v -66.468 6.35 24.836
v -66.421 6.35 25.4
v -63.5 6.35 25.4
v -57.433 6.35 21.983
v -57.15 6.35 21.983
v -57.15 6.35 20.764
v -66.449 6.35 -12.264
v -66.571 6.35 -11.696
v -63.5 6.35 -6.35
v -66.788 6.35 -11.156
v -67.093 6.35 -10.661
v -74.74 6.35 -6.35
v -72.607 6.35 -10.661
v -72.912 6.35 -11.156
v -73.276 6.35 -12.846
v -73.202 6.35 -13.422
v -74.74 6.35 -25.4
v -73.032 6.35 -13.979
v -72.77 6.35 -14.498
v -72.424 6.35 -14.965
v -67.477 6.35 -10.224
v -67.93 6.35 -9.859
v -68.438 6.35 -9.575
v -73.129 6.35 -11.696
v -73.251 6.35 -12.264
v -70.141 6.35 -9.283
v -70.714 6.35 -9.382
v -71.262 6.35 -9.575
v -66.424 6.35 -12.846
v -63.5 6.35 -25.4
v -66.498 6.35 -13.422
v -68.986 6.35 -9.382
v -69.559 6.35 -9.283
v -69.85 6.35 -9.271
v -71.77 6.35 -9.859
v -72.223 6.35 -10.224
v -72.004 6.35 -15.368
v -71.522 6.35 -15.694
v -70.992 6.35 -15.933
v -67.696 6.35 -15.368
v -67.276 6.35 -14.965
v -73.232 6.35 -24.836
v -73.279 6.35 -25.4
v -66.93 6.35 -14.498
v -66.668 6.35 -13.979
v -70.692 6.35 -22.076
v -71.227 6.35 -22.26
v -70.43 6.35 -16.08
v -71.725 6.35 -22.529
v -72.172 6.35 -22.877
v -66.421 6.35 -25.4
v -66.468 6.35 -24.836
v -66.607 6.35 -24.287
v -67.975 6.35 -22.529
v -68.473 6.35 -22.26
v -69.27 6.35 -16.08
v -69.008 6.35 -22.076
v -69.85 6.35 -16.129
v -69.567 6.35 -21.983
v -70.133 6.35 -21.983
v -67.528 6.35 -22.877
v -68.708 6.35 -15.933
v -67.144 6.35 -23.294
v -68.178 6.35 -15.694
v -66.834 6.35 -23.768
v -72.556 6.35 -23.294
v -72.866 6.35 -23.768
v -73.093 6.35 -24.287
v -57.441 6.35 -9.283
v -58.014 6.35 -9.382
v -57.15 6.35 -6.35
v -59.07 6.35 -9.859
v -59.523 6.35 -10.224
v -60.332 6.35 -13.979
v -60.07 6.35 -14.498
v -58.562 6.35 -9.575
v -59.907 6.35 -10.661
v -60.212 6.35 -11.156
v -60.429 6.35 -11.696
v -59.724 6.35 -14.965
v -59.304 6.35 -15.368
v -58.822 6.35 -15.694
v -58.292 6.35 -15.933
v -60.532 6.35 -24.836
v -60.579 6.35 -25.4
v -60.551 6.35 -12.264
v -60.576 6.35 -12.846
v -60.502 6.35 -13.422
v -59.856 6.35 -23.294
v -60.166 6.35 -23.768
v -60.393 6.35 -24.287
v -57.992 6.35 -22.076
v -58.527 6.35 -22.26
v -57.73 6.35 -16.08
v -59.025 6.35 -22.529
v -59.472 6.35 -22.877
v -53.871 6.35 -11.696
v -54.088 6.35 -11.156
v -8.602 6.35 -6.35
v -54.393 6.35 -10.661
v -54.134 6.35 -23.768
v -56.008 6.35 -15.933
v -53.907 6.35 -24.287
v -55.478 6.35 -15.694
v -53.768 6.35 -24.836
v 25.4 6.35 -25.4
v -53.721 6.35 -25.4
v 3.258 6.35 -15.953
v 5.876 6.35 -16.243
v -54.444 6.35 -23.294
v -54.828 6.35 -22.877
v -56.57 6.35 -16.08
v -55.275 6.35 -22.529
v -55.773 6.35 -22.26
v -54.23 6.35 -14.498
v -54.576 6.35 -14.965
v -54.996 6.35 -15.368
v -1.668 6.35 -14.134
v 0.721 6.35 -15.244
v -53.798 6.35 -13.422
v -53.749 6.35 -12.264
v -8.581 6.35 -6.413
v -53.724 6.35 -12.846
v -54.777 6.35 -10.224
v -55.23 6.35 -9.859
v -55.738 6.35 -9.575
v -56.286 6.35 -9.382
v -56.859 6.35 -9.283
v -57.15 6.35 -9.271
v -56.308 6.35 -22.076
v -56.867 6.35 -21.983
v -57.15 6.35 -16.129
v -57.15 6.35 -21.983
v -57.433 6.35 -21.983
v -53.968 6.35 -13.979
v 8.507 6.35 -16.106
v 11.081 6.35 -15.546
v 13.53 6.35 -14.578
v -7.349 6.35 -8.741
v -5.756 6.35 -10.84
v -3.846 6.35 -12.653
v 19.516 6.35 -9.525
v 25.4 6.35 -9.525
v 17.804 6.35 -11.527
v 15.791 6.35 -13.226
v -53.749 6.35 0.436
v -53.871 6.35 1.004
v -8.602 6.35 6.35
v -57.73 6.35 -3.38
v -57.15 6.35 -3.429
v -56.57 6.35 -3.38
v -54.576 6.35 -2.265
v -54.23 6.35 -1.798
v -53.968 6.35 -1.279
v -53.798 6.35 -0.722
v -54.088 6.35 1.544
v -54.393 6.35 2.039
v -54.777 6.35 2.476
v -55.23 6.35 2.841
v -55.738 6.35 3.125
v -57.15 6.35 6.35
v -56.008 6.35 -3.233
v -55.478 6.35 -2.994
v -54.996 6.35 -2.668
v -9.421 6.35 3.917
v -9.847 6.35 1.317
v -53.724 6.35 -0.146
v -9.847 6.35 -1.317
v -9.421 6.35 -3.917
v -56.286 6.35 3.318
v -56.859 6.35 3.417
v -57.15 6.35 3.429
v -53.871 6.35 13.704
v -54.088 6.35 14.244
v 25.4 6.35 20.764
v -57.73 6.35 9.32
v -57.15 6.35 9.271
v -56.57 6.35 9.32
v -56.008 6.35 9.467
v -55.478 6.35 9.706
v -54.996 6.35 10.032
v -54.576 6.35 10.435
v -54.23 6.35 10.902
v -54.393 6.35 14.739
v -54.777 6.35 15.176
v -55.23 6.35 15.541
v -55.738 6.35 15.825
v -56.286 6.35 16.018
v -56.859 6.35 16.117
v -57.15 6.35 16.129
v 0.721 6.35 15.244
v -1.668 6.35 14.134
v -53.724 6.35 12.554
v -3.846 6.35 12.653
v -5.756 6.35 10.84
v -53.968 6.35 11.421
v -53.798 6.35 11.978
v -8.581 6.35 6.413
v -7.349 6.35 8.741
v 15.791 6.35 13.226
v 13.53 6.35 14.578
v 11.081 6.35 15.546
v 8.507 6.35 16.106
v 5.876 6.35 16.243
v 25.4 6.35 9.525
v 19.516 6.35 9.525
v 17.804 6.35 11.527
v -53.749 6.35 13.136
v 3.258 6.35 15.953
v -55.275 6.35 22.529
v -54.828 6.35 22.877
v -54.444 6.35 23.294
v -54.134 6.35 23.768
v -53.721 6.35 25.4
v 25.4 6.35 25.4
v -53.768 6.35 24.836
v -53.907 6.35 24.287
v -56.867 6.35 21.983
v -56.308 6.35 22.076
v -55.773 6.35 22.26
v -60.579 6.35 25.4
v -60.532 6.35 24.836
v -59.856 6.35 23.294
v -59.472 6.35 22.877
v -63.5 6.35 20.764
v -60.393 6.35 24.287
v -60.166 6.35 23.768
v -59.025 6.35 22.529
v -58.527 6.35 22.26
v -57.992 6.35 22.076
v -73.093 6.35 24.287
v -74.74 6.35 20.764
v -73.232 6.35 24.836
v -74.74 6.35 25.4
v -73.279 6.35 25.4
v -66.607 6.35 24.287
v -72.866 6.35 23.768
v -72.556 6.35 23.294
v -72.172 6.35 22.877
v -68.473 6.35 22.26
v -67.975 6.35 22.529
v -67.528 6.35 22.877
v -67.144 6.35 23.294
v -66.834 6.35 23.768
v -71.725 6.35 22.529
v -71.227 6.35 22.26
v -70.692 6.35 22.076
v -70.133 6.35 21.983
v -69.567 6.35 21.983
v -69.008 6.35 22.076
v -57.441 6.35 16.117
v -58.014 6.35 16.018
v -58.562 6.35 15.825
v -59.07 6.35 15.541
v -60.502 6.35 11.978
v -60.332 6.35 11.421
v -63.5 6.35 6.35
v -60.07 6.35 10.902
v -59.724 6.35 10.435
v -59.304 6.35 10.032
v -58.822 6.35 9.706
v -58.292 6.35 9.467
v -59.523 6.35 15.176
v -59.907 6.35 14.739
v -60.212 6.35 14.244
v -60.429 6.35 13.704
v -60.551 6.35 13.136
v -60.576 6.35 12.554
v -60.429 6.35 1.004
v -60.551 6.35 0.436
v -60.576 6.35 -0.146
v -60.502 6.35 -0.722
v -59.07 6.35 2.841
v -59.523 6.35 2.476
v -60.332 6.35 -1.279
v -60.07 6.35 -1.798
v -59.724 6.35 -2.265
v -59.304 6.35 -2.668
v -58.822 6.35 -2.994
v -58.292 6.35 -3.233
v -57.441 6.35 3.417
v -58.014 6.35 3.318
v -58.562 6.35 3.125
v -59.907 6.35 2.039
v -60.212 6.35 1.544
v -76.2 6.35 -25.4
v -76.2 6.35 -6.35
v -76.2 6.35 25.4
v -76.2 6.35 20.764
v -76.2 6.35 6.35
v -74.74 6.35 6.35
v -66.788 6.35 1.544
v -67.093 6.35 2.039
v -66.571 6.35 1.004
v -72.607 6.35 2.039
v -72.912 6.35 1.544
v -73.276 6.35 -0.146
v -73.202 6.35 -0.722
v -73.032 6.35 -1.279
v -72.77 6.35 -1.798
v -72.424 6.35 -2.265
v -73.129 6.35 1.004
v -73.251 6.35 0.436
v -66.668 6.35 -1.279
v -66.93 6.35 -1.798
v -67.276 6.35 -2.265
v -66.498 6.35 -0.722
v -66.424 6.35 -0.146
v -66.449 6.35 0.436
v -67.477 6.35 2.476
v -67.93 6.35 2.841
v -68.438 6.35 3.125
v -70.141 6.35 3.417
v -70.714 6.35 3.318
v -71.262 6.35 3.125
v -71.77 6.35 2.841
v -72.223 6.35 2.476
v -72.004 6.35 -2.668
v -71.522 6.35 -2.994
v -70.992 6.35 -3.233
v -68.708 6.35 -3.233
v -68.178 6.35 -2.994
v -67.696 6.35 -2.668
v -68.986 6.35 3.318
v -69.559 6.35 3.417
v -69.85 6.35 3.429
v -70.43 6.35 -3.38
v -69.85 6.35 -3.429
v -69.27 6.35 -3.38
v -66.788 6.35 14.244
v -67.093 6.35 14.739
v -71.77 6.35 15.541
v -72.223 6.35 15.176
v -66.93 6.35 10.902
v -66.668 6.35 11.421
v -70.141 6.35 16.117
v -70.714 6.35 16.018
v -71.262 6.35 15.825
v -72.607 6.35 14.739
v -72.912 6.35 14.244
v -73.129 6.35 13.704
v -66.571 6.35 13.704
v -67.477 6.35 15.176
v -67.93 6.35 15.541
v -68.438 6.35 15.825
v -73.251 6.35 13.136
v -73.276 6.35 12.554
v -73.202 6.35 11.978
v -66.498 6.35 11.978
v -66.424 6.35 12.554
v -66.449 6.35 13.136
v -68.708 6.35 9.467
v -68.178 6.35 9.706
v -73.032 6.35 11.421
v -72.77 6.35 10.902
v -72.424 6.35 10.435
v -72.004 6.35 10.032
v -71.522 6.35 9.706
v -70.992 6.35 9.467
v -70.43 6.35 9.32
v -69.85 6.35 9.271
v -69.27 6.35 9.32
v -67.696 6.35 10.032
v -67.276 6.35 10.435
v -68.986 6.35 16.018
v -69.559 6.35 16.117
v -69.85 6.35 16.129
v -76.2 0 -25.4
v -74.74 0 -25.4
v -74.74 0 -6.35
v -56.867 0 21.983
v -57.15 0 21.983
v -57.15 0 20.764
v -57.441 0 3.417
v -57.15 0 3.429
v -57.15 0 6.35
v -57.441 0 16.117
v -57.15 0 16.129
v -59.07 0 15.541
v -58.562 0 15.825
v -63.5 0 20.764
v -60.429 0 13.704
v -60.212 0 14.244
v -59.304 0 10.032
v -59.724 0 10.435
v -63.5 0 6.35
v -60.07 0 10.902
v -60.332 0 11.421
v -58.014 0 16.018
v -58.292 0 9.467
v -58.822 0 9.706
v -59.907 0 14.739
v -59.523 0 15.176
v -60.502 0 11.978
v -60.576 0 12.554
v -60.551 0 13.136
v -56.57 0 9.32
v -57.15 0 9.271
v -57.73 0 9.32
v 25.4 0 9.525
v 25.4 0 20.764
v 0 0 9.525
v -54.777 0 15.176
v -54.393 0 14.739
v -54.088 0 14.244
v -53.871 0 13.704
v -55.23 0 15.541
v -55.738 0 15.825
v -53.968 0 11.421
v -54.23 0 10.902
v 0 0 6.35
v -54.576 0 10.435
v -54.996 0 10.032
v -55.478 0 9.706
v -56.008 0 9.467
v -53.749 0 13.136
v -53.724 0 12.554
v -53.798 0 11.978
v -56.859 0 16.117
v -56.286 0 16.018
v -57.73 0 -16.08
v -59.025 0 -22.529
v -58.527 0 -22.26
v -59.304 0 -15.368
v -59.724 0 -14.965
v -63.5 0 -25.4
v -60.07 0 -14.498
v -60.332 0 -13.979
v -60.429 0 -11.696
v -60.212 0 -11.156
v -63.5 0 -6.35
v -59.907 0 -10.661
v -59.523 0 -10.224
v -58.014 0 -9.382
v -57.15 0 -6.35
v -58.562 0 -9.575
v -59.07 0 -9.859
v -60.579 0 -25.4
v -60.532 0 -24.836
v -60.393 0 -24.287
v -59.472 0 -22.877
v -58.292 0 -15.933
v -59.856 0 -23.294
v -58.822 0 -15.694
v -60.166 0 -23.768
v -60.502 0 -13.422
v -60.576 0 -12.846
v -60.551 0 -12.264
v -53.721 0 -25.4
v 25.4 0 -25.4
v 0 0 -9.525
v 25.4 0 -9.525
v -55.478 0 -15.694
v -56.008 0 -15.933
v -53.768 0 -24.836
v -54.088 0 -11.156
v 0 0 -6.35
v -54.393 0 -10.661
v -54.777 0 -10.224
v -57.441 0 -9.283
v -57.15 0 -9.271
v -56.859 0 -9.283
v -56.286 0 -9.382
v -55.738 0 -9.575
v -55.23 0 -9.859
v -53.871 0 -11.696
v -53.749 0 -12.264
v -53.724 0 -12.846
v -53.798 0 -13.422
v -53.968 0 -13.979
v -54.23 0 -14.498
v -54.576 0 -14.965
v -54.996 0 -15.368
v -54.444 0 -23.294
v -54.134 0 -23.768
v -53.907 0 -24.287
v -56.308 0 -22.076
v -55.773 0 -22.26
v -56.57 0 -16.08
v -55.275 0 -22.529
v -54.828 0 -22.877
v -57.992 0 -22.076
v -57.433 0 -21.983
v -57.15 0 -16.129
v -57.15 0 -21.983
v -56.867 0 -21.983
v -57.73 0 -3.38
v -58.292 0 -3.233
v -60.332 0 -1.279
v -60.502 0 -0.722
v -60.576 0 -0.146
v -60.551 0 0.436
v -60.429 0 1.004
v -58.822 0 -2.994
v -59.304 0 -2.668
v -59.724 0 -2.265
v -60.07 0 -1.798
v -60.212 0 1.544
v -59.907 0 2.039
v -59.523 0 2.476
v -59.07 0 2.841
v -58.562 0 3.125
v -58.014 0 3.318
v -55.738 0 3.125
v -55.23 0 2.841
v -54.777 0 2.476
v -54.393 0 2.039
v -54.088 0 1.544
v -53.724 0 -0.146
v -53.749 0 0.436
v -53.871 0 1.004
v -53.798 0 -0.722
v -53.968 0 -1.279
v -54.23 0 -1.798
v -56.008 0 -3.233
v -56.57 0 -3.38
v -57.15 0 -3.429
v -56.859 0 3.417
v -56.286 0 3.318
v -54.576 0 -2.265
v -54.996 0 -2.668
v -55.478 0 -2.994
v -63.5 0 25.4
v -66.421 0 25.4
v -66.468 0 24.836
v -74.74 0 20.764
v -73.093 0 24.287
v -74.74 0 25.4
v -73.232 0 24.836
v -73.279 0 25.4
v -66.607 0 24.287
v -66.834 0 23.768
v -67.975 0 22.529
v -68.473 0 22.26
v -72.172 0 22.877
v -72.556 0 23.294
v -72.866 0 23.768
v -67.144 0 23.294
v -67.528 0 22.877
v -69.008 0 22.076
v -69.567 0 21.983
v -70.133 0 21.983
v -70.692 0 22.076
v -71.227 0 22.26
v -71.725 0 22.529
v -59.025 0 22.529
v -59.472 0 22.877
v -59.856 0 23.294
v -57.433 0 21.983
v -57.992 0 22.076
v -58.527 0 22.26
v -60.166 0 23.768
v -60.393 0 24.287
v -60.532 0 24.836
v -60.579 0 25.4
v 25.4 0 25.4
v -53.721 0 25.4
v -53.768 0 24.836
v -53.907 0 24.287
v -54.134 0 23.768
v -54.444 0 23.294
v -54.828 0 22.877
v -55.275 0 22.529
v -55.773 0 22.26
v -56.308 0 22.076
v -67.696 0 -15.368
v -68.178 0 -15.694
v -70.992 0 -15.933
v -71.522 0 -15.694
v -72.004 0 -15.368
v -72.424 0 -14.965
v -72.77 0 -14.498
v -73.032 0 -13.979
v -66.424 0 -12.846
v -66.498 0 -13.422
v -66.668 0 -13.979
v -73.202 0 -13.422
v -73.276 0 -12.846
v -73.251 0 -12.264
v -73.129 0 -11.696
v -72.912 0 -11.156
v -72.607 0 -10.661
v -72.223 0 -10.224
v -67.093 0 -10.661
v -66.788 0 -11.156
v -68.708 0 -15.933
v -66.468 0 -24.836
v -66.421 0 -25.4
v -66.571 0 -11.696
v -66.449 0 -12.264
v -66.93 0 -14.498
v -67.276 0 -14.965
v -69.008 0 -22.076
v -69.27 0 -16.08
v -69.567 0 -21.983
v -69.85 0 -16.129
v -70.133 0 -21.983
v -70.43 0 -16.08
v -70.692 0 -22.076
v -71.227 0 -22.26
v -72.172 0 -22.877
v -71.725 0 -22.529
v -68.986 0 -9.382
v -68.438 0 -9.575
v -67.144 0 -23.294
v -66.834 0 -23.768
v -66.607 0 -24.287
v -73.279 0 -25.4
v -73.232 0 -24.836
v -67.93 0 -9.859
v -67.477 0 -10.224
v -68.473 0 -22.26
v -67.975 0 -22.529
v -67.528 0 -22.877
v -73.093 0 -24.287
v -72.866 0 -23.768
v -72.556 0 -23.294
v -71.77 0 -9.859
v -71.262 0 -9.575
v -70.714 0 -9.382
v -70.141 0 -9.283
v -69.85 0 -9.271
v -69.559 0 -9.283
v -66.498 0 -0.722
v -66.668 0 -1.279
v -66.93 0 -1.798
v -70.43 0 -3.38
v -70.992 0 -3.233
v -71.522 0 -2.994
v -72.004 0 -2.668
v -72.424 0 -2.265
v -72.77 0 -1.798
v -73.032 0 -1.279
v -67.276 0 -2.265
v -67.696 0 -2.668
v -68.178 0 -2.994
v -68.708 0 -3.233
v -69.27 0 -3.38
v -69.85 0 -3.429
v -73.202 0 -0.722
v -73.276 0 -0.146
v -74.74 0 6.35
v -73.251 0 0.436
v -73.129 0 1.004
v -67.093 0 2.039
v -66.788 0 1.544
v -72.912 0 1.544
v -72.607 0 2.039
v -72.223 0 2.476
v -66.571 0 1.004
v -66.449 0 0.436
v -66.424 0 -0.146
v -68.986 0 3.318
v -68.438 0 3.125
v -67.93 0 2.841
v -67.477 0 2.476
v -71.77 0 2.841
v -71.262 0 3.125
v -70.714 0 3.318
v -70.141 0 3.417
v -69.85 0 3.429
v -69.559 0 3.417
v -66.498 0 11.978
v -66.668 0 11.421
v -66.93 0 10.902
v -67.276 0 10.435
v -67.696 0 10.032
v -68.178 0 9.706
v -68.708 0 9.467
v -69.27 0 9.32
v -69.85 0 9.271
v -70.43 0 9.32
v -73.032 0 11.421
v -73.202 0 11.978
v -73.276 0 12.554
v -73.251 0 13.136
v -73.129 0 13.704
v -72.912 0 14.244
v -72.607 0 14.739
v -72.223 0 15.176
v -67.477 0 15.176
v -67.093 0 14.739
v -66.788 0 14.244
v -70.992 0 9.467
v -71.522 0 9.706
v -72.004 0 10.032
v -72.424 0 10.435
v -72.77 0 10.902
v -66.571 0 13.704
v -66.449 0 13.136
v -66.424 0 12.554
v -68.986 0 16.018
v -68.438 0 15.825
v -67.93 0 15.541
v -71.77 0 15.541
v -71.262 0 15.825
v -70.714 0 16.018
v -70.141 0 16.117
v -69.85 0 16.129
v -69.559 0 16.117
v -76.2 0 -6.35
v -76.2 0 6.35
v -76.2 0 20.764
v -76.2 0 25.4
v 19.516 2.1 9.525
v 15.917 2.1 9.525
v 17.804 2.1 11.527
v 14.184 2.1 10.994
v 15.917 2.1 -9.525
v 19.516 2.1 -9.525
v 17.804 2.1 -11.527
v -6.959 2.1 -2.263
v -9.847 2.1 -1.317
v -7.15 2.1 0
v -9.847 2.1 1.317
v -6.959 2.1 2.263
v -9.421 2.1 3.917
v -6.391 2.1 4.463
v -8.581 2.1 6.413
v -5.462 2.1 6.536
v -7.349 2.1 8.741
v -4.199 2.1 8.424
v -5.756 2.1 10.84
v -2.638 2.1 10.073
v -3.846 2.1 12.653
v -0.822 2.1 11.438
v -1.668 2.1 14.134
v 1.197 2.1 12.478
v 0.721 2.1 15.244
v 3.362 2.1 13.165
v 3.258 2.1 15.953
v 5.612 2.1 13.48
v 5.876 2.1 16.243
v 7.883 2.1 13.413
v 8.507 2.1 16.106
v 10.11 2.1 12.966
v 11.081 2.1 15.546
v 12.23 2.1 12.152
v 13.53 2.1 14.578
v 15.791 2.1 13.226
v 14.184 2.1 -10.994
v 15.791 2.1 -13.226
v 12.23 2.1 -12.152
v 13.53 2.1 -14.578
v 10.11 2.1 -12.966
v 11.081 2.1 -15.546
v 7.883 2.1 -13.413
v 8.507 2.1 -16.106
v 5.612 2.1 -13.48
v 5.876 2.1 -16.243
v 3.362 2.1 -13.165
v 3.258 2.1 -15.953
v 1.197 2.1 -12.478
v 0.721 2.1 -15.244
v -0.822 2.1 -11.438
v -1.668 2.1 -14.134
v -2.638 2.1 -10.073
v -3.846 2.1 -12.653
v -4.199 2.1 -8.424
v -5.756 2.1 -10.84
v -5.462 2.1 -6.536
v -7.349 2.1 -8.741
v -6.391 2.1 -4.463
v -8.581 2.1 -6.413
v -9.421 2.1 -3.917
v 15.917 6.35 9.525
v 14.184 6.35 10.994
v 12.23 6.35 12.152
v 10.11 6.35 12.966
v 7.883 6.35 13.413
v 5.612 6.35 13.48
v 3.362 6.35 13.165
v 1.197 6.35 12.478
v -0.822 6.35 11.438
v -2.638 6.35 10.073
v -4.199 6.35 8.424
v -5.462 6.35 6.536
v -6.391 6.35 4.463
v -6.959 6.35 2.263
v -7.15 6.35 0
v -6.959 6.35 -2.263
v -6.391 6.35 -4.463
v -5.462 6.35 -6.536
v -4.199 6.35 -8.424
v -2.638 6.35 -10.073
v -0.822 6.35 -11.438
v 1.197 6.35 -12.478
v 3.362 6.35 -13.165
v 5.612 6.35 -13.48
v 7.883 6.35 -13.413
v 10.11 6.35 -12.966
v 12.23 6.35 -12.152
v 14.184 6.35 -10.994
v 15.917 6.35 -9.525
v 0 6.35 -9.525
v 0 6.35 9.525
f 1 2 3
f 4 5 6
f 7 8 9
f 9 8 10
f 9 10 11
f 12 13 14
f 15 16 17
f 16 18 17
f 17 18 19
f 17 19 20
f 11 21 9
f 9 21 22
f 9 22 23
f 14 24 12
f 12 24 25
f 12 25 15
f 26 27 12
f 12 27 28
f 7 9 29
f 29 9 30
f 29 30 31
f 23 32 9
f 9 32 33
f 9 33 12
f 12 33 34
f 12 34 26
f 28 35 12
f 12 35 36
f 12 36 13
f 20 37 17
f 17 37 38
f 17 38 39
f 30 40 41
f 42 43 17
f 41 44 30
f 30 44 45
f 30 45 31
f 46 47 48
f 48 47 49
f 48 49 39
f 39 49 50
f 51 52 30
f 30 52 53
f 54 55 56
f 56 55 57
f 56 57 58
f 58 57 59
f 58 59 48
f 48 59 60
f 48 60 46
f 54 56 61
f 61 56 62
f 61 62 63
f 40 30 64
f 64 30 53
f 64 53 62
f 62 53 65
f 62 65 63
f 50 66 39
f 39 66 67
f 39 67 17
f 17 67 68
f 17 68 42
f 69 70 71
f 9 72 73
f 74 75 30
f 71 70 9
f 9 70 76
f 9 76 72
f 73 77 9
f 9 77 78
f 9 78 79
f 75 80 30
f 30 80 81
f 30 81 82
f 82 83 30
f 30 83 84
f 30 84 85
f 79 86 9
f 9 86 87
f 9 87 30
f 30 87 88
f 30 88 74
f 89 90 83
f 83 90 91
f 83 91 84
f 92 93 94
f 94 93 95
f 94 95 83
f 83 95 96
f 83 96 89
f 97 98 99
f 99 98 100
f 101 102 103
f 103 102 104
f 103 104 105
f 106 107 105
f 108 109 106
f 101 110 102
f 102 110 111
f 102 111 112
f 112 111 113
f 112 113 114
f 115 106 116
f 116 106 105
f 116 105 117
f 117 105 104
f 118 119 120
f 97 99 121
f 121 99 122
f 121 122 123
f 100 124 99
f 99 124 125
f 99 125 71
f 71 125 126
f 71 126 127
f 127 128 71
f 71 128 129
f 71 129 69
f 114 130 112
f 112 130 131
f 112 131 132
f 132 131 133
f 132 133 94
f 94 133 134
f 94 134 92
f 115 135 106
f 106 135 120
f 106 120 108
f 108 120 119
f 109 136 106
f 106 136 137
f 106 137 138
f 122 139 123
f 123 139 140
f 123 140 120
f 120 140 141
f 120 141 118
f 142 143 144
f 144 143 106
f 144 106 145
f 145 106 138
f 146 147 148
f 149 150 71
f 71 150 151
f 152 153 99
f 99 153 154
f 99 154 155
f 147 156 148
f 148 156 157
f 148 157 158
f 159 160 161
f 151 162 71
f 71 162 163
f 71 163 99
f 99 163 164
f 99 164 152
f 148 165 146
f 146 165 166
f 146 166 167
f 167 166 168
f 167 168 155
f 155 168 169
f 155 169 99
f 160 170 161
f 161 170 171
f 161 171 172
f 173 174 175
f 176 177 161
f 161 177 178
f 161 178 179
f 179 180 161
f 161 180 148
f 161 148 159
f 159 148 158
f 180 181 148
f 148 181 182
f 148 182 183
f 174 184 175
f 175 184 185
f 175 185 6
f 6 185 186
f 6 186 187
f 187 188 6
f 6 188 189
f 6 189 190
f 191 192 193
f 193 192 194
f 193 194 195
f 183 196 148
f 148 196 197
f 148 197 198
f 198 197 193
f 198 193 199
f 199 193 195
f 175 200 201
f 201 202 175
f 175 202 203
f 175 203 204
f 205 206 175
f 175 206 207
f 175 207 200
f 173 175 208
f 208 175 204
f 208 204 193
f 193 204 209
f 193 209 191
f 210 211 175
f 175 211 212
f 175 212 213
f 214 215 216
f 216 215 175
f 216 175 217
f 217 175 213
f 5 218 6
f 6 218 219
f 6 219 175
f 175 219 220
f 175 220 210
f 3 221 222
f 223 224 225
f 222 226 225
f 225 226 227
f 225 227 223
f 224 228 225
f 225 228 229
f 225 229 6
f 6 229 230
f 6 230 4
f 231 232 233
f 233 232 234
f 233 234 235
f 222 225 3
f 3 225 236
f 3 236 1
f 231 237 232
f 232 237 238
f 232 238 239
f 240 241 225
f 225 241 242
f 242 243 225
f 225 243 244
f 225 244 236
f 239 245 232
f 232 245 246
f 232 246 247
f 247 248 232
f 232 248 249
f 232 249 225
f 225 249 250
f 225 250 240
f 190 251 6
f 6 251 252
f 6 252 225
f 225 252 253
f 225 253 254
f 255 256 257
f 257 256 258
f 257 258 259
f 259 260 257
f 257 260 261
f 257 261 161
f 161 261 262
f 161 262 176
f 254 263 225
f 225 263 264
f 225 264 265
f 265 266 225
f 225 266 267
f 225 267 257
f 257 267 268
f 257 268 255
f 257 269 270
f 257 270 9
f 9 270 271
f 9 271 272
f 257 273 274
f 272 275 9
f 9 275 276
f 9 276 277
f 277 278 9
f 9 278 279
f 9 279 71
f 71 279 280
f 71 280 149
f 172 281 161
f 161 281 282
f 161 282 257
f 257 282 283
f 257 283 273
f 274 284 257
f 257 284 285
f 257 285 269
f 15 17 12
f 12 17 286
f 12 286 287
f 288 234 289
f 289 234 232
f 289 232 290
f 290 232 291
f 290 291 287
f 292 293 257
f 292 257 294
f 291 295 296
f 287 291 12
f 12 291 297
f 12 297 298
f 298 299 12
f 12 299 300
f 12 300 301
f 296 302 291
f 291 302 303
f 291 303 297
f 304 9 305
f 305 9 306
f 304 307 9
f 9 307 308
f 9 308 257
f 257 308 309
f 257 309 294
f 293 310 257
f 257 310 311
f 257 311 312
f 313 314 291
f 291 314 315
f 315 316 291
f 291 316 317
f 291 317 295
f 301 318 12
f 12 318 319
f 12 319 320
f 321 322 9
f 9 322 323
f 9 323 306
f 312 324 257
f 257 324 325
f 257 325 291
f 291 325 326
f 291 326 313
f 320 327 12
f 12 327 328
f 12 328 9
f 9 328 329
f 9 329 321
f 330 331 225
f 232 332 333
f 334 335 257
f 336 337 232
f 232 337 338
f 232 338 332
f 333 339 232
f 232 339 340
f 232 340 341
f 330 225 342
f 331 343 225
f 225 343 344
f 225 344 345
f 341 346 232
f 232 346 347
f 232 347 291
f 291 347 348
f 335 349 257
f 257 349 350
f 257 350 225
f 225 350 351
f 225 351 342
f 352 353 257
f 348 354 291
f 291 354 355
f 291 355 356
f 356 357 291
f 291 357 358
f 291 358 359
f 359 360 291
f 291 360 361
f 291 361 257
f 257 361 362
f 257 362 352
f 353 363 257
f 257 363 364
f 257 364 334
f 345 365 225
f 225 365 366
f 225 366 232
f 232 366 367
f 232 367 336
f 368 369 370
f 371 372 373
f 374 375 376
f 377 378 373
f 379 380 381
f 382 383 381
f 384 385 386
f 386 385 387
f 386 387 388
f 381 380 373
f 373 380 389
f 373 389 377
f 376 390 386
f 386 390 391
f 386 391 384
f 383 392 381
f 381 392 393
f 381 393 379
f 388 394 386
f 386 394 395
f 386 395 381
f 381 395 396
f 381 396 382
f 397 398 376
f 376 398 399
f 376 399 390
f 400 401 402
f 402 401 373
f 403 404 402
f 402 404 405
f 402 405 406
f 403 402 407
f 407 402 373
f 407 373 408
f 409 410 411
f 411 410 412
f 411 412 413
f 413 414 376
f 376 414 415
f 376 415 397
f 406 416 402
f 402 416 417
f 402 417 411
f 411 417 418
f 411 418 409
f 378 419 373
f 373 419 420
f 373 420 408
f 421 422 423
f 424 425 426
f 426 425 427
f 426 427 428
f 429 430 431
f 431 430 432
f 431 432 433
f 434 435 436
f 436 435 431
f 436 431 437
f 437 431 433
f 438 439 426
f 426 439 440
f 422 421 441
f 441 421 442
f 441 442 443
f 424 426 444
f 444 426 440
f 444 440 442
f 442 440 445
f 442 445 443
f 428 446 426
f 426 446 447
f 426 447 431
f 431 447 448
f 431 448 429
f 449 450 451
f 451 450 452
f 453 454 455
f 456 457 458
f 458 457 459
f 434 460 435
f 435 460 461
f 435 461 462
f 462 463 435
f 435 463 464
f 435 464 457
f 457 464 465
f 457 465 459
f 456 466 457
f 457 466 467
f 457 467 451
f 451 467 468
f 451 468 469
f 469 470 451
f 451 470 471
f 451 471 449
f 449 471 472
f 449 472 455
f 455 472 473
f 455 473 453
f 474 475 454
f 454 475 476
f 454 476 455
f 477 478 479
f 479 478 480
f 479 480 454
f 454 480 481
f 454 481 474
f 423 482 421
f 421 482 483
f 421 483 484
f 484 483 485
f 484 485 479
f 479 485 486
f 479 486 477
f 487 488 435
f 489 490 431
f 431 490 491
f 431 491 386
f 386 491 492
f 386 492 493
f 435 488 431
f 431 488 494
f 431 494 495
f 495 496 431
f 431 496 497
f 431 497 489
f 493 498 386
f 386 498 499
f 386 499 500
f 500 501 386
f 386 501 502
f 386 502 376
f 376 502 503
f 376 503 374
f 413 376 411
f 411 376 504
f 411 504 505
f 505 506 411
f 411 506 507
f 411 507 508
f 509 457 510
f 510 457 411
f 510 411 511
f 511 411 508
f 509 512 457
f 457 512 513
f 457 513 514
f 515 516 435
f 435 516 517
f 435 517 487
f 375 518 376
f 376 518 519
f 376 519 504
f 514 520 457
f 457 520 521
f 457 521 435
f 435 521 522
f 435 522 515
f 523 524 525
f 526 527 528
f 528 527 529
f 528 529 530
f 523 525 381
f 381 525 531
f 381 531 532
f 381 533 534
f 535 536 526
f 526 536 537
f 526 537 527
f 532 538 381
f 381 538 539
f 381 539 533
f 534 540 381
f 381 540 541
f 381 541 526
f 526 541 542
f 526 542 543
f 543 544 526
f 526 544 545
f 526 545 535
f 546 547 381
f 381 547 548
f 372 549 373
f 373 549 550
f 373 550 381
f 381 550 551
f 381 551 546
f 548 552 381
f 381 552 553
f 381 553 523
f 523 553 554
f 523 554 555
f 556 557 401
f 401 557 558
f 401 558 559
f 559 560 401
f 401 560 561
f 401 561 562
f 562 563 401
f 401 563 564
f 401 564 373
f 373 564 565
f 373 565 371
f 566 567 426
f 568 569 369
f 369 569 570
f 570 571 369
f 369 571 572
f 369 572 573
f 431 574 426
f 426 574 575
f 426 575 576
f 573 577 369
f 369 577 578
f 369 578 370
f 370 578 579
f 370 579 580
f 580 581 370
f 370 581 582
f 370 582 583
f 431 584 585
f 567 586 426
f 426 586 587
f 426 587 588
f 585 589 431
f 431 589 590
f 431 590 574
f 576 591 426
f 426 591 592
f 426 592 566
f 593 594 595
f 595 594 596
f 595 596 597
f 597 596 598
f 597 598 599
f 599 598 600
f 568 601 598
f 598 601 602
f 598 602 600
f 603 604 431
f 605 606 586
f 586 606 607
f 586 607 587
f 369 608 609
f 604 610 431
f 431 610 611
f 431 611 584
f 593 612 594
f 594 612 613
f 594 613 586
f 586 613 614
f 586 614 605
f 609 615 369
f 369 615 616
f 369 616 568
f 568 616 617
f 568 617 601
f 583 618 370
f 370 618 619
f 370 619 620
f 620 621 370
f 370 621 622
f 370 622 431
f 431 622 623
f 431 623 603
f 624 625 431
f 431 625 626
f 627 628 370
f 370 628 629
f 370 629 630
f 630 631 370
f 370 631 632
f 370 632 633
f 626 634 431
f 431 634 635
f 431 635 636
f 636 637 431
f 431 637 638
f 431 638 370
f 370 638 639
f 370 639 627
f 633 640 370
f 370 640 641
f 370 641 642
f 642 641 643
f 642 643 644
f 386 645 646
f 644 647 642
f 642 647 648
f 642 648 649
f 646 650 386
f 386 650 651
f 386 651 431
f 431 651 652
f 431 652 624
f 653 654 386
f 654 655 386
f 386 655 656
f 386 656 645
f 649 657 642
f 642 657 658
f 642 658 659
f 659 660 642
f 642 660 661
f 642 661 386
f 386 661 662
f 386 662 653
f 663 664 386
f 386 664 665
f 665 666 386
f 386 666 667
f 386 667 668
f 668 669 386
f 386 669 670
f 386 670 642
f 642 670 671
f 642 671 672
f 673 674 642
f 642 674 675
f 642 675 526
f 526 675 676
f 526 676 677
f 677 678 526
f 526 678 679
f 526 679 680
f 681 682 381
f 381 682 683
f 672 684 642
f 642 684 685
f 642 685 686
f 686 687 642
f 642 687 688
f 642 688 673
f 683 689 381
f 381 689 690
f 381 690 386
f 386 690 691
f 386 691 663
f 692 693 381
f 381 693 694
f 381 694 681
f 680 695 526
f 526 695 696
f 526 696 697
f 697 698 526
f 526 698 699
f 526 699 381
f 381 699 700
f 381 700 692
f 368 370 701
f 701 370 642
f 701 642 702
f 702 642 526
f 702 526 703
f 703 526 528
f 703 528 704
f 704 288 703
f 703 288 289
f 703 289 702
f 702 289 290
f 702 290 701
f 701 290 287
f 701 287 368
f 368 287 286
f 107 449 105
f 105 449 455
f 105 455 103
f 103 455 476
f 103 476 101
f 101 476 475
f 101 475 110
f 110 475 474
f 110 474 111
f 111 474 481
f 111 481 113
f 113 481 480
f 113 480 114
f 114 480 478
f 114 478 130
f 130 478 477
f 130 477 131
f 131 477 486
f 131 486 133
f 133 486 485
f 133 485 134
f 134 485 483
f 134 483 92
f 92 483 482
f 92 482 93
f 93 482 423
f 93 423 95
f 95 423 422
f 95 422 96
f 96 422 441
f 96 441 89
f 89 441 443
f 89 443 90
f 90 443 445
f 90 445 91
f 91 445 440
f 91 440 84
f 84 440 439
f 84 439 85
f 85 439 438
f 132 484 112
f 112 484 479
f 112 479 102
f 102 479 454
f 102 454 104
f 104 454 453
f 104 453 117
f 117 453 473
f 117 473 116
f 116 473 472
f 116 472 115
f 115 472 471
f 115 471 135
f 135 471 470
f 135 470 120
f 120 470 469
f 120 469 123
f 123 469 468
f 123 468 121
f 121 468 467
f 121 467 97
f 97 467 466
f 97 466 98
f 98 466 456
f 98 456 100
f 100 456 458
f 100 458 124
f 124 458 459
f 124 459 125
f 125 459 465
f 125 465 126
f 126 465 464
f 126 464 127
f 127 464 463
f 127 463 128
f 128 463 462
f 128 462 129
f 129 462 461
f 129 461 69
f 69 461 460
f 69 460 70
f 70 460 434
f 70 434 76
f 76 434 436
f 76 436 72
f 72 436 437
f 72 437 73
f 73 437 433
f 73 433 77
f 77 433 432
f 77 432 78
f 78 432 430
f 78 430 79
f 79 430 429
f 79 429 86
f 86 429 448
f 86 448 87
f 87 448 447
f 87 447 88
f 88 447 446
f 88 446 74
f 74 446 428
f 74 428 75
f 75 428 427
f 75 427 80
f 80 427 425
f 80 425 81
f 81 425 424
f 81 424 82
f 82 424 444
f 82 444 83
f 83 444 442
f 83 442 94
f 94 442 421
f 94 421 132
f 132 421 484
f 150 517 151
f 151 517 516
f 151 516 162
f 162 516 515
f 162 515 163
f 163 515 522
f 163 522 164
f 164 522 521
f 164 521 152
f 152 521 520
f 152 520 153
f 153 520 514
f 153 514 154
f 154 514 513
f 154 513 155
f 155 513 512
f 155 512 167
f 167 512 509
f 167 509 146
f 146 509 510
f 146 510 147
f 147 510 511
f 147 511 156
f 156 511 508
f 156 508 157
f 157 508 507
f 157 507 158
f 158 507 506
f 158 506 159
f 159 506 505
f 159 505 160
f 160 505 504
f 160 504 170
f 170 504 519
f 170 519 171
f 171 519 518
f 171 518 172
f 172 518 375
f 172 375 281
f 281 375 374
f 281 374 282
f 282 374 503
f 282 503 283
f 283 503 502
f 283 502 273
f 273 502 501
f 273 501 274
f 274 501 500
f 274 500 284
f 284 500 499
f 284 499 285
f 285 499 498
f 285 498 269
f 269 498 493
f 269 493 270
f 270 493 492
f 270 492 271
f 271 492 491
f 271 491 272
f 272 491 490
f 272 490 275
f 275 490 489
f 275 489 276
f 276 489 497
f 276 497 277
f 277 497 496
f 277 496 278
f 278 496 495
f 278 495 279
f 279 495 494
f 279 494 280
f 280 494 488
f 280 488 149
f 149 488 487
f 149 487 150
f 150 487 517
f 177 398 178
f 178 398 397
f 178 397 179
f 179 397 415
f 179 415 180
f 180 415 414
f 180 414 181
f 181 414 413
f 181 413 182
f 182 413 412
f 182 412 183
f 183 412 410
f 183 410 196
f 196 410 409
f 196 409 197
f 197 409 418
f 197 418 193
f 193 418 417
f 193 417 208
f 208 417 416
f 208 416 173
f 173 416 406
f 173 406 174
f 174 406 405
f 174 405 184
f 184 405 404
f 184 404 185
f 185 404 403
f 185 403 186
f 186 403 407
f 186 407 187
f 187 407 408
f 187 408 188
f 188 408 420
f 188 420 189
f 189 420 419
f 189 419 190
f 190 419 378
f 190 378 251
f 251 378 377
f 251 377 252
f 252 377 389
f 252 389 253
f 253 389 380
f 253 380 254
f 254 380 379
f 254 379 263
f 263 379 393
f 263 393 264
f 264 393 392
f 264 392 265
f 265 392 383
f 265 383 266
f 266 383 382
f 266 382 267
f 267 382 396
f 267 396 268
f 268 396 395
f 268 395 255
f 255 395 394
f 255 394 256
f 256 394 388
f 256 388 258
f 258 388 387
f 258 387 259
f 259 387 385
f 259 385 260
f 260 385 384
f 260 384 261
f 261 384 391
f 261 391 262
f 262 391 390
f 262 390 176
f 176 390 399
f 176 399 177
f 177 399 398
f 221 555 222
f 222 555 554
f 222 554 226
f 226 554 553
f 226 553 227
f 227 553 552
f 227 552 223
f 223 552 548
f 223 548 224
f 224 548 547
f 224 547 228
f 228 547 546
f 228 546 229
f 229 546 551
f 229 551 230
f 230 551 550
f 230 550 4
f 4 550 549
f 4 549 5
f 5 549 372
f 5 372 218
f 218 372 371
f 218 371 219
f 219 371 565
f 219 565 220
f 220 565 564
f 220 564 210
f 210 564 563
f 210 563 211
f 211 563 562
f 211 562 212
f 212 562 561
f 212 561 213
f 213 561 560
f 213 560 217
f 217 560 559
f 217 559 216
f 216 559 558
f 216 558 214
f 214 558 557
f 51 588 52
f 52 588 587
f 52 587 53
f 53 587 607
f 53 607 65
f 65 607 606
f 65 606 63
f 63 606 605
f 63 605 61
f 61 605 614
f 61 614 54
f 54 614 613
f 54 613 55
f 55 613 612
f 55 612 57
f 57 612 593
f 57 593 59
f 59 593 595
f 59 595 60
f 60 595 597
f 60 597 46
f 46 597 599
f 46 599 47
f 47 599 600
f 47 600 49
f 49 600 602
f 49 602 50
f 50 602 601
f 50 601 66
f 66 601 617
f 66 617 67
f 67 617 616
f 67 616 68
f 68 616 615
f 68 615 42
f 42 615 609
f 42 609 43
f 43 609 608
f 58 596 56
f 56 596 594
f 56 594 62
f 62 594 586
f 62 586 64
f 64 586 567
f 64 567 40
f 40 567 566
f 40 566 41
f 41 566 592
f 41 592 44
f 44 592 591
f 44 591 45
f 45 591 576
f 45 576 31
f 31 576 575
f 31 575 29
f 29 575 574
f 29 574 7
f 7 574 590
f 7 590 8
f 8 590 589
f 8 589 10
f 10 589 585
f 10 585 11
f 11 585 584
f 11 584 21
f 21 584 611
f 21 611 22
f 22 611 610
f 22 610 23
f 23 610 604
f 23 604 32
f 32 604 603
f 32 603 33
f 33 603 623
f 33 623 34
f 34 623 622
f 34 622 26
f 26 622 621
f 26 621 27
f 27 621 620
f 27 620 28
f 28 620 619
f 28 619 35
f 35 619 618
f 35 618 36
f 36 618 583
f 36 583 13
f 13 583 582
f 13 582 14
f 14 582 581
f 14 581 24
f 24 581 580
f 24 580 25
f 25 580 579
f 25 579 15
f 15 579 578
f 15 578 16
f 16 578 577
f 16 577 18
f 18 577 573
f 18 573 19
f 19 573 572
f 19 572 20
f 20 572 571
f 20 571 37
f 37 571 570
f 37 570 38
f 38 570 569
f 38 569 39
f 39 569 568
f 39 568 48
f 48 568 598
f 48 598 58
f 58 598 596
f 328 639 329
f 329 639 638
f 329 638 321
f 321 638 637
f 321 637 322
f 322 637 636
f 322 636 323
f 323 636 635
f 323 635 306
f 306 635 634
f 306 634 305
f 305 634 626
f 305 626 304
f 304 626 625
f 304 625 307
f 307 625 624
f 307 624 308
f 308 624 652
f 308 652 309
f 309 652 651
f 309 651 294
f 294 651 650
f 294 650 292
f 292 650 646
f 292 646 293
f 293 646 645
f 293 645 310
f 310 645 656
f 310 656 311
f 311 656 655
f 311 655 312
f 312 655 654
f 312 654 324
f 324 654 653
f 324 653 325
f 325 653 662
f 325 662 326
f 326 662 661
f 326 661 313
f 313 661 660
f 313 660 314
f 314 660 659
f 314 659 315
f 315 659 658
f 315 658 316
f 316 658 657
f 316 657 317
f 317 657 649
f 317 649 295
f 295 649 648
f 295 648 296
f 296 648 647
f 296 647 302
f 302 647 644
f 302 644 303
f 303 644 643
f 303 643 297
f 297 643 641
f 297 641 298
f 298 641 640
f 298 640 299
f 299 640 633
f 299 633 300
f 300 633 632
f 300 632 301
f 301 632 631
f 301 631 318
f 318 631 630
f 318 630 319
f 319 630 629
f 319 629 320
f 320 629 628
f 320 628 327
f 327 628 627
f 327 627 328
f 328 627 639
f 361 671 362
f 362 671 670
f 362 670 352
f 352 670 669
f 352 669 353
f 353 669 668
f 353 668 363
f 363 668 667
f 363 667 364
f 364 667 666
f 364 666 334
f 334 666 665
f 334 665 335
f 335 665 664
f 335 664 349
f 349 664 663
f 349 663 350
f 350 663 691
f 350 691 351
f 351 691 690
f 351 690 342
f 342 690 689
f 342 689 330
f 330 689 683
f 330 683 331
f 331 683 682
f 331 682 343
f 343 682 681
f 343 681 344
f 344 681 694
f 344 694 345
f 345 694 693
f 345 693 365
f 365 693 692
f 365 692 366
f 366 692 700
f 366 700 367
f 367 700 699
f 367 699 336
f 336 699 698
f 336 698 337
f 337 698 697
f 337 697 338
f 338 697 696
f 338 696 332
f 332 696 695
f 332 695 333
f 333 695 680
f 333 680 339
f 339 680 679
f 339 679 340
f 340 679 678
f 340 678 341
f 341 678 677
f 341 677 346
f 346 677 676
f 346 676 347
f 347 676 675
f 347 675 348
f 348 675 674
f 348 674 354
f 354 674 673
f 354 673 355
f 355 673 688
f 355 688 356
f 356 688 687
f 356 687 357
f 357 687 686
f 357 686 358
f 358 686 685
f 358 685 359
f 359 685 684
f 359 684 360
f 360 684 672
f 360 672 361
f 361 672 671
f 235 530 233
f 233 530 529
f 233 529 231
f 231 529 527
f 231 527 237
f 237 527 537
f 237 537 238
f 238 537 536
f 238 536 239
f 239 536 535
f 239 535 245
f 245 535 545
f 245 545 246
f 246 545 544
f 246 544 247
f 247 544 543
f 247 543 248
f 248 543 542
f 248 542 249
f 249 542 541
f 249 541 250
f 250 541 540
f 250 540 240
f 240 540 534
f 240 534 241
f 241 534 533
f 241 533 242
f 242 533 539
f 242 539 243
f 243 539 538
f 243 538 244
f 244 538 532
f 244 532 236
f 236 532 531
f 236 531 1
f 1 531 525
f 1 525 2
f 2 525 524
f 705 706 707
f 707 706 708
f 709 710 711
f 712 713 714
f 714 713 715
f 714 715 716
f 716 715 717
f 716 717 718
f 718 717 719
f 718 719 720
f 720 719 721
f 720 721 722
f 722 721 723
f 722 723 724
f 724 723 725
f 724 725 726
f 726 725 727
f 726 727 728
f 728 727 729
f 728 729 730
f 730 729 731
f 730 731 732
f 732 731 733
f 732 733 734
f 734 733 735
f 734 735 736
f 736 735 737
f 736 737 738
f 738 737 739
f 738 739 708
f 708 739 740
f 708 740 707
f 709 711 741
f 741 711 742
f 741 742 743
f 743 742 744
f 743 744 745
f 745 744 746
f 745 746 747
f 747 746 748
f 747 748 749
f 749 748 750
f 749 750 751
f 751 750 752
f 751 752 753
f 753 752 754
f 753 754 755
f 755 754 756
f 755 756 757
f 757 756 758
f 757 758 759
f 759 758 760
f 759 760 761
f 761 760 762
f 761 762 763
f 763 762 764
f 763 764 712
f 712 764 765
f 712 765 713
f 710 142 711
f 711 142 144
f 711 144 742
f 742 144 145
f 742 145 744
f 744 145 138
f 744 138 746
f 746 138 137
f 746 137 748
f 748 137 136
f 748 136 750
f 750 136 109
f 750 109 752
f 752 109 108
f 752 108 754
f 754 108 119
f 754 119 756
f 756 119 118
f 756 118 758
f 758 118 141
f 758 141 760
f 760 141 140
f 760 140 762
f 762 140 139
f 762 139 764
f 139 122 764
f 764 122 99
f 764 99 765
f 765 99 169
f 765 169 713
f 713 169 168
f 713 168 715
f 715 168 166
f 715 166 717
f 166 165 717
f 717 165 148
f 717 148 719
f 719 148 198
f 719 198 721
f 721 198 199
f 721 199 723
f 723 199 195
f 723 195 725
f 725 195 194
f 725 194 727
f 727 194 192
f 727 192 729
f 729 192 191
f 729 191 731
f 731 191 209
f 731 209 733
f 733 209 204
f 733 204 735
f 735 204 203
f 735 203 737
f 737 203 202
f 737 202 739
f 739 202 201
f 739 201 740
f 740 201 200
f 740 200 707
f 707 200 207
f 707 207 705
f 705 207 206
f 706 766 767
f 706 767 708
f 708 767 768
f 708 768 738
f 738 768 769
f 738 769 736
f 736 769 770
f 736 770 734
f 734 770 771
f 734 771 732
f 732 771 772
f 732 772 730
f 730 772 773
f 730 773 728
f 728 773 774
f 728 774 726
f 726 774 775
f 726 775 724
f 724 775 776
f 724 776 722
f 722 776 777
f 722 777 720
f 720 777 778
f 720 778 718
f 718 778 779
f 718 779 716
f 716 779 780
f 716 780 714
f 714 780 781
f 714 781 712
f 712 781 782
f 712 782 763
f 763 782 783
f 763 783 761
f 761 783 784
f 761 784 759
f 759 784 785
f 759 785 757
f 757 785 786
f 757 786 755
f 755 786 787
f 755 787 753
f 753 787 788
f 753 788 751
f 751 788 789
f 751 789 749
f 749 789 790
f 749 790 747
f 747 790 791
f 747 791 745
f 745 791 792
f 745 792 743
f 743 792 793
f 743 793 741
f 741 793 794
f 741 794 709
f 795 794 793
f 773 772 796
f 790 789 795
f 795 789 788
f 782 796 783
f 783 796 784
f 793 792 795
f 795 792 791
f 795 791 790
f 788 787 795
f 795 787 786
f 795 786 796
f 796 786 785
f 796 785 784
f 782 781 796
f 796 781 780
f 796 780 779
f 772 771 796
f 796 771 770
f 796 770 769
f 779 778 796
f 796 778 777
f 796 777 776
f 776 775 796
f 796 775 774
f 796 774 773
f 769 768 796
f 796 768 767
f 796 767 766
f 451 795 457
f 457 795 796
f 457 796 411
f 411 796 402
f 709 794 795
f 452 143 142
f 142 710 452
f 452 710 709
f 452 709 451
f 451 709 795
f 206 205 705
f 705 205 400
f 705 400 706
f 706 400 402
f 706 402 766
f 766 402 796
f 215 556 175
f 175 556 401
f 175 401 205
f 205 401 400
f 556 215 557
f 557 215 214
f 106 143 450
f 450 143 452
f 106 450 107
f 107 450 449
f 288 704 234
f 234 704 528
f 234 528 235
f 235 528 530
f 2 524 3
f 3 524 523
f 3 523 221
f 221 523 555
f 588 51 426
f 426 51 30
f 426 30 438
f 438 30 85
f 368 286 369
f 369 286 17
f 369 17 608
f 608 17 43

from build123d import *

# Parameters (mm, degrees)
SKETCH1_W           = 152.4
SKETCH1_H           = 88.9
SKETCH1_R           = 3.429
BOSS_EXTRUDE1_DEPTH = 6.35
CUT_EXTRUDE3_START  = 6.35
SKETCH2_R           = 16.25
SKETCH2_R_2         = 13.5
CUT_EXTRUDE3_DEPTH  = 4.25
SKETCH3_W           = 76.2
SKETCH3_H           = 19.05
CUT_EXTRUDE4_DEPTH  = 89.44526556
SKETCH4_OUTSIDE_W   = 189.71
SKETCH4_OUTSIDE_H   = 126.21
SKETCH4_OUTSIDE_W_2 = 101.6
SKETCH4_OUTSIDE_H_2 = 50.8
CUT_EXTRUDE6_DEPTH  = 89.44526556


with BuildPart() as part:
    # Sketch1 → Boss-Extrude1 (new body)
    with BuildSketch(Plane(origin=(0, 0, 0), x_dir=(1, 0, 0), z_dir=(0, 1, 0))):
        Rectangle(SKETCH1_W, SKETCH1_H)
        with Locations(Location((-69.85, 38.1, 0), (0, 0, 270))):
            Circle(SKETCH1_R, mode=Mode.SUBTRACT)
        with Locations(Location((-57.15, 38.1, 0), (0, 0, 270))):
            Circle(SKETCH1_R, mode=Mode.SUBTRACT)
        with Locations(Location((-57.15, 25.4, 0), (0, 0, 270))):
            Circle(SKETCH1_R, mode=Mode.SUBTRACT)
        with Locations(Location((-57.15, 12.7, 0), (0, 0, 270))):
            Circle(SKETCH1_R, mode=Mode.SUBTRACT)
        with Locations(Location((-57.15, 0, 0), (0, 0, 270))):
            Circle(SKETCH1_R, mode=Mode.SUBTRACT)
        with Locations(Location((-57.15, -12.7, 0), (0, 0, 270))):
            Circle(SKETCH1_R, mode=Mode.SUBTRACT)
        with Locations(Location((-57.15, -25.4, 0), (0, 0, 270))):
            Circle(SKETCH1_R, mode=Mode.SUBTRACT)
        with Locations(Location((-57.15, -38.1, 0), (0, 0, 270))):
            Circle(SKETCH1_R, mode=Mode.SUBTRACT)
        with Locations(Location((-69.85, 25.4, 0), (0, 0, 270))):
            Circle(SKETCH1_R, mode=Mode.SUBTRACT)
        with Locations(Location((-69.85, 12.7, 0), (0, 0, 270))):
            Circle(SKETCH1_R, mode=Mode.SUBTRACT)
        with Locations(Location((-69.85, 0, 0), (0, 0, 270))):
            Circle(SKETCH1_R, mode=Mode.SUBTRACT)
        with Locations(Location((-69.85, -12.7, 0), (0, 0, 270))):
            Circle(SKETCH1_R, mode=Mode.SUBTRACT)
        with Locations(Location((-69.85, -25.4, 0), (0, 0, 270))):
            Circle(SKETCH1_R, mode=Mode.SUBTRACT)
        with Locations(Location((-69.85, -38.1, 0), (0, 0, 270))):
            Circle(SKETCH1_R, mode=Mode.SUBTRACT)
    extrude(amount=BOSS_EXTRUDE1_DEPTH)

    # Sketch2 → Cut-Extrude3 (cut)
    with BuildSketch(Plane(origin=(0, 0, 0), x_dir=(1, 0, 0), z_dir=(0, 1, 0)).offset(CUT_EXTRUDE3_START)):
        with Locations(Location((6.35, 0, 0), (0, 0, 90))):
            Circle(SKETCH2_R)
        with Locations(Location((6.35, 0, 0), (0, 0, 90))):
            Circle(SKETCH2_R_2, mode=Mode.SUBTRACT)
    extrude(amount=-CUT_EXTRUDE3_DEPTH, mode=Mode.SUBTRACT)

    # Sketch3 → Cut-Extrude4 (cut, through all)
    with BuildSketch(Plane(origin=(0, 6.35, 0), x_dir=(1, 0, 0), z_dir=(0, 1, 0))):
        with Locations((38.1, 0)):
            Rectangle(SKETCH3_W, SKETCH3_H)
    extrude(amount=-CUT_EXTRUDE4_DEPTH, mode=Mode.SUBTRACT)

    # Sketch4 outside → Cut-Extrude6 (cut, through all)
    with BuildSketch(Plane(origin=(0, 0, 0), x_dir=(1, 0, 0), z_dir=(0, 1, 0))):
        Rectangle(SKETCH4_OUTSIDE_W, SKETCH4_OUTSIDE_H)
        with Locations((-25.4, 0)):
            Rectangle(SKETCH4_OUTSIDE_W_2, SKETCH4_OUTSIDE_H_2, mode=Mode.SUBTRACT)
    extrude(amount=CUT_EXTRUDE6_DEPTH, mode=Mode.SUBTRACT)


solid = part.part
